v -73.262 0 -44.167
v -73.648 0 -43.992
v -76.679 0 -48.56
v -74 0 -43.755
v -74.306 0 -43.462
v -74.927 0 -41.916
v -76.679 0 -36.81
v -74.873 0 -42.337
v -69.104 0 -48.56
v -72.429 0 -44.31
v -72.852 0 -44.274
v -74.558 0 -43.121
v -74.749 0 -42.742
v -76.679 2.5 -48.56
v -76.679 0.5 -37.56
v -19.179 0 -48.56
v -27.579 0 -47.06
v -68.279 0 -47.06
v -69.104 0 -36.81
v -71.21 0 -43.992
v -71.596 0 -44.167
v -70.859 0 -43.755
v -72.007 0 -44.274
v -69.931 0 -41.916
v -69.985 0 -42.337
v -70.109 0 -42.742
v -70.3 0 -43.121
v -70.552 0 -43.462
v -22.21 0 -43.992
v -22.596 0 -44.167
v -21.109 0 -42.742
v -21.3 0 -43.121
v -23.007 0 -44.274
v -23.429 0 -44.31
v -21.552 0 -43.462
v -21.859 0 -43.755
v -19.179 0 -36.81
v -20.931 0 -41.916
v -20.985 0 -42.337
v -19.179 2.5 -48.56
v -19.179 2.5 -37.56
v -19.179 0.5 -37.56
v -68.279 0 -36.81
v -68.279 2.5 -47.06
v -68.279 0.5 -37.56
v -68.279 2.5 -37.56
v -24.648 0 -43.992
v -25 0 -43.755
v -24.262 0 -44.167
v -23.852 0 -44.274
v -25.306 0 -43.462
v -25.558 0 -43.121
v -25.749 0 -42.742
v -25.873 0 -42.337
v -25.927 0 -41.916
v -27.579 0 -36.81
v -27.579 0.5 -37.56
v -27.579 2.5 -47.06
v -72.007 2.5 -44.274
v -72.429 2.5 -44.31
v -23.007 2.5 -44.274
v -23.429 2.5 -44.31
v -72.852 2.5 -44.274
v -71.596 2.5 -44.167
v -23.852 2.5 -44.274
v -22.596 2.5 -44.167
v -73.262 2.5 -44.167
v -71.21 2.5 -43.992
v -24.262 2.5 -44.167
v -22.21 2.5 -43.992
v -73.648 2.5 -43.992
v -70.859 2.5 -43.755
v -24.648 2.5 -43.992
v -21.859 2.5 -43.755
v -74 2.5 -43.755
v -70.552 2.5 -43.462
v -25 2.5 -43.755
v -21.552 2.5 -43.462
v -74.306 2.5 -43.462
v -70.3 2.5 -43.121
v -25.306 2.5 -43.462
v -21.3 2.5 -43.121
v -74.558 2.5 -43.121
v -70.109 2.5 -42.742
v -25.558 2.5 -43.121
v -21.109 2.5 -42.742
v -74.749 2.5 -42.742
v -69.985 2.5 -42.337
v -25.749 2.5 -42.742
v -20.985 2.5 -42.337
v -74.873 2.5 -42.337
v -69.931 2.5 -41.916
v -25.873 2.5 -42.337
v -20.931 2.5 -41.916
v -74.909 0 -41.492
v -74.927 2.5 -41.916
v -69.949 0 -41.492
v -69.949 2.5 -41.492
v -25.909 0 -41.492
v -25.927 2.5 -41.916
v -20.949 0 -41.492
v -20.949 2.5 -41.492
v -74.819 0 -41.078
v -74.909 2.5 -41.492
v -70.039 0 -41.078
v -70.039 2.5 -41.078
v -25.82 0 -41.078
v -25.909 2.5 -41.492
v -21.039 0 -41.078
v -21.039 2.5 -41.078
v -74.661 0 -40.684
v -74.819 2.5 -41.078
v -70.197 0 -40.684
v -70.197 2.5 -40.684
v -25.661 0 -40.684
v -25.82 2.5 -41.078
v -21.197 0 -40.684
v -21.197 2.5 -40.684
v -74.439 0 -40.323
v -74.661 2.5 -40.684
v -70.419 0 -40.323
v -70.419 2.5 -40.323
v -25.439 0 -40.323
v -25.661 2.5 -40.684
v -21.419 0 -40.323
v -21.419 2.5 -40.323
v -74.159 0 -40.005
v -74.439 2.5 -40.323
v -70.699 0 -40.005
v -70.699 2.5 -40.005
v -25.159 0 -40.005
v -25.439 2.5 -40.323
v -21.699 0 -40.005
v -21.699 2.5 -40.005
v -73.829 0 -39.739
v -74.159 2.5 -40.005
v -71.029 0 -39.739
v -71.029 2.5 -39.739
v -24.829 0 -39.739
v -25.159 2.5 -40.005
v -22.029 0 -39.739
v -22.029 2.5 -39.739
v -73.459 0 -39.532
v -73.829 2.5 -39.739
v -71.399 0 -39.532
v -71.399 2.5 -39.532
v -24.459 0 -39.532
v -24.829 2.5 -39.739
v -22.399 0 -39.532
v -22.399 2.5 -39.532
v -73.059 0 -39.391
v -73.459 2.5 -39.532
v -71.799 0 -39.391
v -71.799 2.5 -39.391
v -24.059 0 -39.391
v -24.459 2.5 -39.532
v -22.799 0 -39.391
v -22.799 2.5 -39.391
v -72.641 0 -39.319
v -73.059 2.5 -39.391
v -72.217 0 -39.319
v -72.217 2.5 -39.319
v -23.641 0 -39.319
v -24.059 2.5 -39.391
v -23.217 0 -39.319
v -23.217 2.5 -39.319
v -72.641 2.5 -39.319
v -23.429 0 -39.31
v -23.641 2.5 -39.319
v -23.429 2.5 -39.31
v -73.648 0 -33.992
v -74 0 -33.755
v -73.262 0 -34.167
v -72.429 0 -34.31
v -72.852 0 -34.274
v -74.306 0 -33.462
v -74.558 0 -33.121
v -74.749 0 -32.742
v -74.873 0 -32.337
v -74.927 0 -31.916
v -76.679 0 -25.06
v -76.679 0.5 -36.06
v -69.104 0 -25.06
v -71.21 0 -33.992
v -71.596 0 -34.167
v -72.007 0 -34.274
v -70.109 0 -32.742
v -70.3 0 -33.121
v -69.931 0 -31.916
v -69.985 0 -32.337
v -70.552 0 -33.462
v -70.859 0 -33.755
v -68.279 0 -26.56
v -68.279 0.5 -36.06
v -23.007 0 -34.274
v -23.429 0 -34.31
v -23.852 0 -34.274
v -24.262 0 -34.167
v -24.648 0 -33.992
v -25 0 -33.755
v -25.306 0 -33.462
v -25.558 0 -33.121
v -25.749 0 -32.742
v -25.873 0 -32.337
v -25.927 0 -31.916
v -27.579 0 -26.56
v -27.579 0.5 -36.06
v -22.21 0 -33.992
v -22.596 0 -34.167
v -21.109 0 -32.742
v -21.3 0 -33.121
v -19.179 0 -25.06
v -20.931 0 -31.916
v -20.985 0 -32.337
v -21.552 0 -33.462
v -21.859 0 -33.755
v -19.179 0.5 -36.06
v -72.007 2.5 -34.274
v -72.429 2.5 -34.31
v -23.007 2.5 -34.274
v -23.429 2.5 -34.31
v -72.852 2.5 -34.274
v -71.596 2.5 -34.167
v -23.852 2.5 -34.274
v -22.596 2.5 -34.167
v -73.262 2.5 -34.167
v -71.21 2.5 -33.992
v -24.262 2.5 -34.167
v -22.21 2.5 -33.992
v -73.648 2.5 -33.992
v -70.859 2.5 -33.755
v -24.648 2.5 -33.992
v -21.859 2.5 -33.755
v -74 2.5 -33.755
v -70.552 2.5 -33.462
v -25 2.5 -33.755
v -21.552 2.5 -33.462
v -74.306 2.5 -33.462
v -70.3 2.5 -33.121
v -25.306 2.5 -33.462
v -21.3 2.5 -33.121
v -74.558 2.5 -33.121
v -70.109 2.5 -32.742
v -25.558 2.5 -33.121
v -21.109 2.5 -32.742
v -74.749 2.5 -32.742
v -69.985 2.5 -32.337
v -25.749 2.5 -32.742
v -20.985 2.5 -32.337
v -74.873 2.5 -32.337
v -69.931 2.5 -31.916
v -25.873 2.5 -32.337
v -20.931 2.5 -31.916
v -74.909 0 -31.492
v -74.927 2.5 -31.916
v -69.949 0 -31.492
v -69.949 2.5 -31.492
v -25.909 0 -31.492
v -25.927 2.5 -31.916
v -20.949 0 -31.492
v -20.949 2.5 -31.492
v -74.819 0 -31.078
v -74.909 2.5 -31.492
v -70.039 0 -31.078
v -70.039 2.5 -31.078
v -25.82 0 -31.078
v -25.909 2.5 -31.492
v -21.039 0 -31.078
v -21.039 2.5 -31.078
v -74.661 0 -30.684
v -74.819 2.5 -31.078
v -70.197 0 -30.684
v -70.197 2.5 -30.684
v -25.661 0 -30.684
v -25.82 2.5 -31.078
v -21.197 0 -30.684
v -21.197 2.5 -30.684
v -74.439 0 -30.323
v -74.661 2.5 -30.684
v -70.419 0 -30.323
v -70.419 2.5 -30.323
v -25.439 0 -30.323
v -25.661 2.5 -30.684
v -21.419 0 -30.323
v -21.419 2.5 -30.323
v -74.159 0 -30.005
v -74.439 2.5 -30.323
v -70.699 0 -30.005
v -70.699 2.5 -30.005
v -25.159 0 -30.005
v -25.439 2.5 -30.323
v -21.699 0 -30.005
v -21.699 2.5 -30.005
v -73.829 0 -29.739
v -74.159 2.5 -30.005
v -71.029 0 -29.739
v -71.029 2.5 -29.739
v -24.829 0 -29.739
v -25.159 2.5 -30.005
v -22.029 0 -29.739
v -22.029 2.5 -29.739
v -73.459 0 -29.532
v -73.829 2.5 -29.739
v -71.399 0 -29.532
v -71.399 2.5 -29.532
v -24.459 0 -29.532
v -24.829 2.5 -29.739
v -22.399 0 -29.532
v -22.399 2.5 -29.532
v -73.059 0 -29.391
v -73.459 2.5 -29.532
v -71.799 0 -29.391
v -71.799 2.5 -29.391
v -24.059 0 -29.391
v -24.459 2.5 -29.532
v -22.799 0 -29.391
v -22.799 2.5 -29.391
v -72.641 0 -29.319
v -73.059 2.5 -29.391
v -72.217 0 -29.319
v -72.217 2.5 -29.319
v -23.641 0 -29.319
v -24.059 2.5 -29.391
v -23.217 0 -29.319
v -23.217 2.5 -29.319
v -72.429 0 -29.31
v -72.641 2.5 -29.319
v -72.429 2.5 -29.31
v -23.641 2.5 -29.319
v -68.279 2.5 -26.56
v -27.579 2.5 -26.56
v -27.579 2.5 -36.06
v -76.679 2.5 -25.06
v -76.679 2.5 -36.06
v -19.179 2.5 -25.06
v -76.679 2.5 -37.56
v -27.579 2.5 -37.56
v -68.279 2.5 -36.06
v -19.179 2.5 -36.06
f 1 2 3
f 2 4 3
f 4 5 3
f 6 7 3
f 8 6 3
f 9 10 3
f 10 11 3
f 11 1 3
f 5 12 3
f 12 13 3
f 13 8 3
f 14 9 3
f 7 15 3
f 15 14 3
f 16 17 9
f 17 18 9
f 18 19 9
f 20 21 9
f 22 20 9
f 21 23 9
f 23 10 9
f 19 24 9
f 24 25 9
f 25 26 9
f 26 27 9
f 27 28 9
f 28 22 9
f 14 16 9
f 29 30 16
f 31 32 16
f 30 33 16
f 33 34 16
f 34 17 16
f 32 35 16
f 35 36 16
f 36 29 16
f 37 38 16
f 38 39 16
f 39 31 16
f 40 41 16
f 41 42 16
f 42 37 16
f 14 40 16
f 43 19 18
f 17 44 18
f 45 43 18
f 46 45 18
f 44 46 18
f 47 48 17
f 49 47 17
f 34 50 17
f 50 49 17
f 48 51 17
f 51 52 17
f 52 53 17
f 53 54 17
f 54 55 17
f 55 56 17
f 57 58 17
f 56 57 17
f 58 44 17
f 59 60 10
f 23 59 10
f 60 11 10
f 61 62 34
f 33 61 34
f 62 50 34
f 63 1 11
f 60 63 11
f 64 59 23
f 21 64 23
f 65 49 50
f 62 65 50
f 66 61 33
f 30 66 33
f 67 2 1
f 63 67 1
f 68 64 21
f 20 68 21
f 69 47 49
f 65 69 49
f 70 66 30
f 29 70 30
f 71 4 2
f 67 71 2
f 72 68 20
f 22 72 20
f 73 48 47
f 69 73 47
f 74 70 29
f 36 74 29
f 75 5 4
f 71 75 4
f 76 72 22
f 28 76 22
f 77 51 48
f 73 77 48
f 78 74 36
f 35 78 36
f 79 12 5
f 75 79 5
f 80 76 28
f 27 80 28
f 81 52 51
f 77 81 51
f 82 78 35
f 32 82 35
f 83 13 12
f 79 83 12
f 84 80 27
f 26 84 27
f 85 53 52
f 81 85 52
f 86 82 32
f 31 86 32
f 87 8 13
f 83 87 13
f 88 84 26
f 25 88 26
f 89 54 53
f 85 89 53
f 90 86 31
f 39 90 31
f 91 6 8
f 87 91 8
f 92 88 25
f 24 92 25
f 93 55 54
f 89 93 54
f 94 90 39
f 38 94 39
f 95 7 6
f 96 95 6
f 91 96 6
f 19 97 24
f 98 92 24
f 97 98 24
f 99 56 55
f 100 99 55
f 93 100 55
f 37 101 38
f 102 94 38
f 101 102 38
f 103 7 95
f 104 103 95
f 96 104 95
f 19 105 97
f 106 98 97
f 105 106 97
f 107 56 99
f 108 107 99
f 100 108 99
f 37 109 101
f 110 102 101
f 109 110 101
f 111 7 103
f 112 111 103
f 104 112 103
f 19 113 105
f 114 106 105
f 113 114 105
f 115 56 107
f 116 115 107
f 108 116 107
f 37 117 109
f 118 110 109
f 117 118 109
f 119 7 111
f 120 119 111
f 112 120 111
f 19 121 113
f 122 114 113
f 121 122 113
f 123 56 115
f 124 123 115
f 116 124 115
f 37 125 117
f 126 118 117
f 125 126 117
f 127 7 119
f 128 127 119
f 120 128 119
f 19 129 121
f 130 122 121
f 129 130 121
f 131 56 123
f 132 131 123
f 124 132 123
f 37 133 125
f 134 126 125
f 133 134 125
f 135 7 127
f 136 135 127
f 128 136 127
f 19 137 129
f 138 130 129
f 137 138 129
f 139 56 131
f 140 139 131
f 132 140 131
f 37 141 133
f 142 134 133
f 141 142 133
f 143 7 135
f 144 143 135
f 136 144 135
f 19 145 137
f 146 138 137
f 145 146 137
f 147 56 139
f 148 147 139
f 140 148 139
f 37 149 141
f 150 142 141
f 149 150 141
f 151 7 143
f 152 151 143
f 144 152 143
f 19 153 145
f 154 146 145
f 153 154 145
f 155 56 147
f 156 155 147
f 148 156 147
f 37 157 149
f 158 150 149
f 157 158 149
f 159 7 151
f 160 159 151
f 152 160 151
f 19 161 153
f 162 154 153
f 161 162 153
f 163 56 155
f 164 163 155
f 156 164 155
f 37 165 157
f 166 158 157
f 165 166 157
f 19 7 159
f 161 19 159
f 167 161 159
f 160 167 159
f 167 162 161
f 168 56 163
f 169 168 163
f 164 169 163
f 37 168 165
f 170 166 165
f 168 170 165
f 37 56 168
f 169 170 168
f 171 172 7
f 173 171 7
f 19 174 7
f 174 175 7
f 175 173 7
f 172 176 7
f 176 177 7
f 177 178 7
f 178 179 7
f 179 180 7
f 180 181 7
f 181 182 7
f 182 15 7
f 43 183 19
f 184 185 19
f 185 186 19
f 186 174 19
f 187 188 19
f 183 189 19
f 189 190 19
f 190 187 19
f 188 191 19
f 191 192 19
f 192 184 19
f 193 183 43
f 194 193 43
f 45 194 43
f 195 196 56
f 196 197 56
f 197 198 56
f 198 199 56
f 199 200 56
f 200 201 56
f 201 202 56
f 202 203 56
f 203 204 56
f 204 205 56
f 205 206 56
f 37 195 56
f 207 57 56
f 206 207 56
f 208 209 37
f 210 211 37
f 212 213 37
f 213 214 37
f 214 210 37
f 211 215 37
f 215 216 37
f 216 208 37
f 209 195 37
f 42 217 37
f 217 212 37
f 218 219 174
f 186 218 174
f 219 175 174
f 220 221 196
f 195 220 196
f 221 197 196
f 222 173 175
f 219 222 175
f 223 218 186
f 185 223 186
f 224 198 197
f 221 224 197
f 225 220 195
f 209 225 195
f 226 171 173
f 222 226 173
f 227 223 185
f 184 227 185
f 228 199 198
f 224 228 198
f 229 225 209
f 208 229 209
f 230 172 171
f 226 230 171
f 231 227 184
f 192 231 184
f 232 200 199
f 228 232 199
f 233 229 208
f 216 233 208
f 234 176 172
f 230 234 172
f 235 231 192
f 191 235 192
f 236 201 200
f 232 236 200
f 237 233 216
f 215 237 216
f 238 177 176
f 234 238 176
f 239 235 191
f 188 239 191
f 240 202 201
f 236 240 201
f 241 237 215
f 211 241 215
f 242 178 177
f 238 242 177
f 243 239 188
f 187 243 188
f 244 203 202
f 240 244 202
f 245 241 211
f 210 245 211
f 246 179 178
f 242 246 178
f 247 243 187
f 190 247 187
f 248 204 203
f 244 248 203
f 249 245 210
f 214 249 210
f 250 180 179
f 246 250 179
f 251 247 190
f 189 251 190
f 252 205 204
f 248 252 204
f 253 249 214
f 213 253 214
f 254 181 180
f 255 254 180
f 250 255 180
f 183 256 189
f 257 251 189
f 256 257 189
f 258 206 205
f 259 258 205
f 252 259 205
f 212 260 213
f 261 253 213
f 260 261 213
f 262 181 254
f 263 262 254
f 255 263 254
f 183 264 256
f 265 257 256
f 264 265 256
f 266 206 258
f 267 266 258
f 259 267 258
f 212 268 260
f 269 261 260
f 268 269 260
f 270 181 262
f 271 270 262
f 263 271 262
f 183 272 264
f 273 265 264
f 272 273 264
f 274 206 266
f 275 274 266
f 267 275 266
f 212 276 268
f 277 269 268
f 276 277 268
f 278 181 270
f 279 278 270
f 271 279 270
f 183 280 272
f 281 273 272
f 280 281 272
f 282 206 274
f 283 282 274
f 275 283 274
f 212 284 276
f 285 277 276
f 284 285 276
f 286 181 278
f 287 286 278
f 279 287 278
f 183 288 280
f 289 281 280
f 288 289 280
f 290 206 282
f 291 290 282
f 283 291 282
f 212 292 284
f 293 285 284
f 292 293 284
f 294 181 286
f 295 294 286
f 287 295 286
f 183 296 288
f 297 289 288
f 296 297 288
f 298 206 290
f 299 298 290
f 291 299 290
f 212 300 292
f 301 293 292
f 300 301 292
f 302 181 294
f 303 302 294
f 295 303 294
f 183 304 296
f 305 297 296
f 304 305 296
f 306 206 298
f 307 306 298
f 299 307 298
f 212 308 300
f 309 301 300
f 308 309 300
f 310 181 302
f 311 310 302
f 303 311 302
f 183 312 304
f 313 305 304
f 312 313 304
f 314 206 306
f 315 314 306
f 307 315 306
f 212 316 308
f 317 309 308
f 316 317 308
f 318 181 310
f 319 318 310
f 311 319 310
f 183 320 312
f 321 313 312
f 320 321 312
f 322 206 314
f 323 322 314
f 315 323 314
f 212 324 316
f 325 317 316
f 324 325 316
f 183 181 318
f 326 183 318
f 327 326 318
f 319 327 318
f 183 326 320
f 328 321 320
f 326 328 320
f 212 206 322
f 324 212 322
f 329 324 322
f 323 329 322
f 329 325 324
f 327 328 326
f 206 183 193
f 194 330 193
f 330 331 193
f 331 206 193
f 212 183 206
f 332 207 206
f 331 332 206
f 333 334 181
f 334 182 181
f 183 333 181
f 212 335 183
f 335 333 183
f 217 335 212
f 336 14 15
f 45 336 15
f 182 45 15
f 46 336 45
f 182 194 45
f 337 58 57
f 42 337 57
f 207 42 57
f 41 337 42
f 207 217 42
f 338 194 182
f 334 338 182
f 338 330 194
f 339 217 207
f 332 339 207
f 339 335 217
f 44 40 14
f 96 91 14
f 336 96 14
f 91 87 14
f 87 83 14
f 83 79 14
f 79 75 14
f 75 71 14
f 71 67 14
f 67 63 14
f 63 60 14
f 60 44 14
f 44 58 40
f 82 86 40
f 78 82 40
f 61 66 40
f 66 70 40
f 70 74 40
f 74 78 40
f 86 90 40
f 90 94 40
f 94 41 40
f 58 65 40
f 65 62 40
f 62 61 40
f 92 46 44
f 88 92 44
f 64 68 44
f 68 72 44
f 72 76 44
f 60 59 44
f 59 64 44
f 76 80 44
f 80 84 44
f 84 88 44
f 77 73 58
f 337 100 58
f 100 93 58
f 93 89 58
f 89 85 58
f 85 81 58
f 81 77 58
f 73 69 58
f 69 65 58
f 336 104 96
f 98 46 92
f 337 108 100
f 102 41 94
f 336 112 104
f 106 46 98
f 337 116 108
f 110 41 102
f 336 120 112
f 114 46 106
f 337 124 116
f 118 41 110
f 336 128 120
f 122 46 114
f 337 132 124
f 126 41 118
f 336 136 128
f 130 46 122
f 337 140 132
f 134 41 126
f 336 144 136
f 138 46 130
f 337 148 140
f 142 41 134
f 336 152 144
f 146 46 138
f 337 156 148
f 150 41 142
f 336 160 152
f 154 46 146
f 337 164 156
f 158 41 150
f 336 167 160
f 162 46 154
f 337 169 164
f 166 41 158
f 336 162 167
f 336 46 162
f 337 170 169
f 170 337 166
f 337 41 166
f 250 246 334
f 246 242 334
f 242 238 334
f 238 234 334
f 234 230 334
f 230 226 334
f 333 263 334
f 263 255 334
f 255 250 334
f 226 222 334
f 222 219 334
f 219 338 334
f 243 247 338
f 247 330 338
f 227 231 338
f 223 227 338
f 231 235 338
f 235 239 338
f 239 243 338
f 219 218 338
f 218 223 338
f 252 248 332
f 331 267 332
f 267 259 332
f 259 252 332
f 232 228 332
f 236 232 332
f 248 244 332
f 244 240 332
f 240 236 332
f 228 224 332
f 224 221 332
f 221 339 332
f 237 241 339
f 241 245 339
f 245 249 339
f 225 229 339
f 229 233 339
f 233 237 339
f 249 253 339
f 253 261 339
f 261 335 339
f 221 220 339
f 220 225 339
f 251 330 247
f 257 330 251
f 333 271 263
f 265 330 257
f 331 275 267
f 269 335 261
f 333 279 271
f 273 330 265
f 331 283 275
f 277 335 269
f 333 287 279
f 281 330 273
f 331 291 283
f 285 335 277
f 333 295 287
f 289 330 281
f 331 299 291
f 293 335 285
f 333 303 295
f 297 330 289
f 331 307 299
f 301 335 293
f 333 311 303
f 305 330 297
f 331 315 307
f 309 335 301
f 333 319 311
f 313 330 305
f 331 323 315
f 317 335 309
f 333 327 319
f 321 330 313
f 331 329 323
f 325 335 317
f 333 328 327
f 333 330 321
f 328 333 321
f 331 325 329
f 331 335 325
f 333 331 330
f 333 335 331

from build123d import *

# Parameters (mm, degrees)
SKETCH2_W           = 57.5
SKETCH2_H           = 23.5
SKETCH2_R           = 2.5
SKETCH2_W_2         = 40.7
SKETCH2_H_2         = 20.5
BOSS_EXTRUDE1_DEPTH = 2.5
CUT_EXTRUDE1_DEPTH  = 2


with BuildPart() as part:
    # Sketch2 → Boss-Extrude1 (new body)
    with BuildSketch(Plane(origin=(0, 0, 0), x_dir=(1, 0, 0), z_dir=(0, 1, 0))):
        with Locations((-47.929083034, 36.809921321)):
            Rectangle(SKETCH2_W, SKETCH2_H)
        with Locations(Location((-23.429083034, 41.809921321, 0), (0, 0, 270))):
            Circle(SKETCH2_R, mode=Mode.SUBTRACT)
        with Locations(Location((-23.429083034, 31.809921321, 0), (0, 0, 90))):
            Circle(SKETCH2_R, mode=Mode.SUBTRACT)
        with Locations(Location((-72.429083034, 31.809921321, 0), (0, 0, 270))):
            Circle(SKETCH2_R, mode=Mode.SUBTRACT)
        with Locations(Location((-72.429083034, 41.809921321, 0), (0, 0, 90))):
            Circle(SKETCH2_R, mode=Mode.SUBTRACT)
        with Locations((-47.929083034, 36.809921321)):
            Rectangle(SKETCH2_W_2, SKETCH2_H_2, mode=Mode.SUBTRACT)
    extrude(amount=BOSS_EXTRUDE1_DEPTH)

    # Sketch3 → Cut-Extrude1 (cut)
    with BuildSketch(Plane(origin=(0, 2.5, 0), x_dir=(1, 0, 0), z_dir=(0, 1, 0))):
        Polygon((-27.579083034, 36.809921321), (-27.579083034, 36.059921321), (-19.179083034, 36.059921321), (-19.179083034, 37.559921321), (-27.579083034, 37.559921321), align=None)
        Polygon((-76.679083034, 37.559921321), (-68.279083034, 37.559921321), (-68.279083034, 36.809921321), (-68.279083034, 36.059921321), (-76.679083034, 36.059921321), align=None)
    extrude(amount=-CUT_EXTRUDE1_DEPTH, mode=Mode.SUBTRACT)


solid = part.part
